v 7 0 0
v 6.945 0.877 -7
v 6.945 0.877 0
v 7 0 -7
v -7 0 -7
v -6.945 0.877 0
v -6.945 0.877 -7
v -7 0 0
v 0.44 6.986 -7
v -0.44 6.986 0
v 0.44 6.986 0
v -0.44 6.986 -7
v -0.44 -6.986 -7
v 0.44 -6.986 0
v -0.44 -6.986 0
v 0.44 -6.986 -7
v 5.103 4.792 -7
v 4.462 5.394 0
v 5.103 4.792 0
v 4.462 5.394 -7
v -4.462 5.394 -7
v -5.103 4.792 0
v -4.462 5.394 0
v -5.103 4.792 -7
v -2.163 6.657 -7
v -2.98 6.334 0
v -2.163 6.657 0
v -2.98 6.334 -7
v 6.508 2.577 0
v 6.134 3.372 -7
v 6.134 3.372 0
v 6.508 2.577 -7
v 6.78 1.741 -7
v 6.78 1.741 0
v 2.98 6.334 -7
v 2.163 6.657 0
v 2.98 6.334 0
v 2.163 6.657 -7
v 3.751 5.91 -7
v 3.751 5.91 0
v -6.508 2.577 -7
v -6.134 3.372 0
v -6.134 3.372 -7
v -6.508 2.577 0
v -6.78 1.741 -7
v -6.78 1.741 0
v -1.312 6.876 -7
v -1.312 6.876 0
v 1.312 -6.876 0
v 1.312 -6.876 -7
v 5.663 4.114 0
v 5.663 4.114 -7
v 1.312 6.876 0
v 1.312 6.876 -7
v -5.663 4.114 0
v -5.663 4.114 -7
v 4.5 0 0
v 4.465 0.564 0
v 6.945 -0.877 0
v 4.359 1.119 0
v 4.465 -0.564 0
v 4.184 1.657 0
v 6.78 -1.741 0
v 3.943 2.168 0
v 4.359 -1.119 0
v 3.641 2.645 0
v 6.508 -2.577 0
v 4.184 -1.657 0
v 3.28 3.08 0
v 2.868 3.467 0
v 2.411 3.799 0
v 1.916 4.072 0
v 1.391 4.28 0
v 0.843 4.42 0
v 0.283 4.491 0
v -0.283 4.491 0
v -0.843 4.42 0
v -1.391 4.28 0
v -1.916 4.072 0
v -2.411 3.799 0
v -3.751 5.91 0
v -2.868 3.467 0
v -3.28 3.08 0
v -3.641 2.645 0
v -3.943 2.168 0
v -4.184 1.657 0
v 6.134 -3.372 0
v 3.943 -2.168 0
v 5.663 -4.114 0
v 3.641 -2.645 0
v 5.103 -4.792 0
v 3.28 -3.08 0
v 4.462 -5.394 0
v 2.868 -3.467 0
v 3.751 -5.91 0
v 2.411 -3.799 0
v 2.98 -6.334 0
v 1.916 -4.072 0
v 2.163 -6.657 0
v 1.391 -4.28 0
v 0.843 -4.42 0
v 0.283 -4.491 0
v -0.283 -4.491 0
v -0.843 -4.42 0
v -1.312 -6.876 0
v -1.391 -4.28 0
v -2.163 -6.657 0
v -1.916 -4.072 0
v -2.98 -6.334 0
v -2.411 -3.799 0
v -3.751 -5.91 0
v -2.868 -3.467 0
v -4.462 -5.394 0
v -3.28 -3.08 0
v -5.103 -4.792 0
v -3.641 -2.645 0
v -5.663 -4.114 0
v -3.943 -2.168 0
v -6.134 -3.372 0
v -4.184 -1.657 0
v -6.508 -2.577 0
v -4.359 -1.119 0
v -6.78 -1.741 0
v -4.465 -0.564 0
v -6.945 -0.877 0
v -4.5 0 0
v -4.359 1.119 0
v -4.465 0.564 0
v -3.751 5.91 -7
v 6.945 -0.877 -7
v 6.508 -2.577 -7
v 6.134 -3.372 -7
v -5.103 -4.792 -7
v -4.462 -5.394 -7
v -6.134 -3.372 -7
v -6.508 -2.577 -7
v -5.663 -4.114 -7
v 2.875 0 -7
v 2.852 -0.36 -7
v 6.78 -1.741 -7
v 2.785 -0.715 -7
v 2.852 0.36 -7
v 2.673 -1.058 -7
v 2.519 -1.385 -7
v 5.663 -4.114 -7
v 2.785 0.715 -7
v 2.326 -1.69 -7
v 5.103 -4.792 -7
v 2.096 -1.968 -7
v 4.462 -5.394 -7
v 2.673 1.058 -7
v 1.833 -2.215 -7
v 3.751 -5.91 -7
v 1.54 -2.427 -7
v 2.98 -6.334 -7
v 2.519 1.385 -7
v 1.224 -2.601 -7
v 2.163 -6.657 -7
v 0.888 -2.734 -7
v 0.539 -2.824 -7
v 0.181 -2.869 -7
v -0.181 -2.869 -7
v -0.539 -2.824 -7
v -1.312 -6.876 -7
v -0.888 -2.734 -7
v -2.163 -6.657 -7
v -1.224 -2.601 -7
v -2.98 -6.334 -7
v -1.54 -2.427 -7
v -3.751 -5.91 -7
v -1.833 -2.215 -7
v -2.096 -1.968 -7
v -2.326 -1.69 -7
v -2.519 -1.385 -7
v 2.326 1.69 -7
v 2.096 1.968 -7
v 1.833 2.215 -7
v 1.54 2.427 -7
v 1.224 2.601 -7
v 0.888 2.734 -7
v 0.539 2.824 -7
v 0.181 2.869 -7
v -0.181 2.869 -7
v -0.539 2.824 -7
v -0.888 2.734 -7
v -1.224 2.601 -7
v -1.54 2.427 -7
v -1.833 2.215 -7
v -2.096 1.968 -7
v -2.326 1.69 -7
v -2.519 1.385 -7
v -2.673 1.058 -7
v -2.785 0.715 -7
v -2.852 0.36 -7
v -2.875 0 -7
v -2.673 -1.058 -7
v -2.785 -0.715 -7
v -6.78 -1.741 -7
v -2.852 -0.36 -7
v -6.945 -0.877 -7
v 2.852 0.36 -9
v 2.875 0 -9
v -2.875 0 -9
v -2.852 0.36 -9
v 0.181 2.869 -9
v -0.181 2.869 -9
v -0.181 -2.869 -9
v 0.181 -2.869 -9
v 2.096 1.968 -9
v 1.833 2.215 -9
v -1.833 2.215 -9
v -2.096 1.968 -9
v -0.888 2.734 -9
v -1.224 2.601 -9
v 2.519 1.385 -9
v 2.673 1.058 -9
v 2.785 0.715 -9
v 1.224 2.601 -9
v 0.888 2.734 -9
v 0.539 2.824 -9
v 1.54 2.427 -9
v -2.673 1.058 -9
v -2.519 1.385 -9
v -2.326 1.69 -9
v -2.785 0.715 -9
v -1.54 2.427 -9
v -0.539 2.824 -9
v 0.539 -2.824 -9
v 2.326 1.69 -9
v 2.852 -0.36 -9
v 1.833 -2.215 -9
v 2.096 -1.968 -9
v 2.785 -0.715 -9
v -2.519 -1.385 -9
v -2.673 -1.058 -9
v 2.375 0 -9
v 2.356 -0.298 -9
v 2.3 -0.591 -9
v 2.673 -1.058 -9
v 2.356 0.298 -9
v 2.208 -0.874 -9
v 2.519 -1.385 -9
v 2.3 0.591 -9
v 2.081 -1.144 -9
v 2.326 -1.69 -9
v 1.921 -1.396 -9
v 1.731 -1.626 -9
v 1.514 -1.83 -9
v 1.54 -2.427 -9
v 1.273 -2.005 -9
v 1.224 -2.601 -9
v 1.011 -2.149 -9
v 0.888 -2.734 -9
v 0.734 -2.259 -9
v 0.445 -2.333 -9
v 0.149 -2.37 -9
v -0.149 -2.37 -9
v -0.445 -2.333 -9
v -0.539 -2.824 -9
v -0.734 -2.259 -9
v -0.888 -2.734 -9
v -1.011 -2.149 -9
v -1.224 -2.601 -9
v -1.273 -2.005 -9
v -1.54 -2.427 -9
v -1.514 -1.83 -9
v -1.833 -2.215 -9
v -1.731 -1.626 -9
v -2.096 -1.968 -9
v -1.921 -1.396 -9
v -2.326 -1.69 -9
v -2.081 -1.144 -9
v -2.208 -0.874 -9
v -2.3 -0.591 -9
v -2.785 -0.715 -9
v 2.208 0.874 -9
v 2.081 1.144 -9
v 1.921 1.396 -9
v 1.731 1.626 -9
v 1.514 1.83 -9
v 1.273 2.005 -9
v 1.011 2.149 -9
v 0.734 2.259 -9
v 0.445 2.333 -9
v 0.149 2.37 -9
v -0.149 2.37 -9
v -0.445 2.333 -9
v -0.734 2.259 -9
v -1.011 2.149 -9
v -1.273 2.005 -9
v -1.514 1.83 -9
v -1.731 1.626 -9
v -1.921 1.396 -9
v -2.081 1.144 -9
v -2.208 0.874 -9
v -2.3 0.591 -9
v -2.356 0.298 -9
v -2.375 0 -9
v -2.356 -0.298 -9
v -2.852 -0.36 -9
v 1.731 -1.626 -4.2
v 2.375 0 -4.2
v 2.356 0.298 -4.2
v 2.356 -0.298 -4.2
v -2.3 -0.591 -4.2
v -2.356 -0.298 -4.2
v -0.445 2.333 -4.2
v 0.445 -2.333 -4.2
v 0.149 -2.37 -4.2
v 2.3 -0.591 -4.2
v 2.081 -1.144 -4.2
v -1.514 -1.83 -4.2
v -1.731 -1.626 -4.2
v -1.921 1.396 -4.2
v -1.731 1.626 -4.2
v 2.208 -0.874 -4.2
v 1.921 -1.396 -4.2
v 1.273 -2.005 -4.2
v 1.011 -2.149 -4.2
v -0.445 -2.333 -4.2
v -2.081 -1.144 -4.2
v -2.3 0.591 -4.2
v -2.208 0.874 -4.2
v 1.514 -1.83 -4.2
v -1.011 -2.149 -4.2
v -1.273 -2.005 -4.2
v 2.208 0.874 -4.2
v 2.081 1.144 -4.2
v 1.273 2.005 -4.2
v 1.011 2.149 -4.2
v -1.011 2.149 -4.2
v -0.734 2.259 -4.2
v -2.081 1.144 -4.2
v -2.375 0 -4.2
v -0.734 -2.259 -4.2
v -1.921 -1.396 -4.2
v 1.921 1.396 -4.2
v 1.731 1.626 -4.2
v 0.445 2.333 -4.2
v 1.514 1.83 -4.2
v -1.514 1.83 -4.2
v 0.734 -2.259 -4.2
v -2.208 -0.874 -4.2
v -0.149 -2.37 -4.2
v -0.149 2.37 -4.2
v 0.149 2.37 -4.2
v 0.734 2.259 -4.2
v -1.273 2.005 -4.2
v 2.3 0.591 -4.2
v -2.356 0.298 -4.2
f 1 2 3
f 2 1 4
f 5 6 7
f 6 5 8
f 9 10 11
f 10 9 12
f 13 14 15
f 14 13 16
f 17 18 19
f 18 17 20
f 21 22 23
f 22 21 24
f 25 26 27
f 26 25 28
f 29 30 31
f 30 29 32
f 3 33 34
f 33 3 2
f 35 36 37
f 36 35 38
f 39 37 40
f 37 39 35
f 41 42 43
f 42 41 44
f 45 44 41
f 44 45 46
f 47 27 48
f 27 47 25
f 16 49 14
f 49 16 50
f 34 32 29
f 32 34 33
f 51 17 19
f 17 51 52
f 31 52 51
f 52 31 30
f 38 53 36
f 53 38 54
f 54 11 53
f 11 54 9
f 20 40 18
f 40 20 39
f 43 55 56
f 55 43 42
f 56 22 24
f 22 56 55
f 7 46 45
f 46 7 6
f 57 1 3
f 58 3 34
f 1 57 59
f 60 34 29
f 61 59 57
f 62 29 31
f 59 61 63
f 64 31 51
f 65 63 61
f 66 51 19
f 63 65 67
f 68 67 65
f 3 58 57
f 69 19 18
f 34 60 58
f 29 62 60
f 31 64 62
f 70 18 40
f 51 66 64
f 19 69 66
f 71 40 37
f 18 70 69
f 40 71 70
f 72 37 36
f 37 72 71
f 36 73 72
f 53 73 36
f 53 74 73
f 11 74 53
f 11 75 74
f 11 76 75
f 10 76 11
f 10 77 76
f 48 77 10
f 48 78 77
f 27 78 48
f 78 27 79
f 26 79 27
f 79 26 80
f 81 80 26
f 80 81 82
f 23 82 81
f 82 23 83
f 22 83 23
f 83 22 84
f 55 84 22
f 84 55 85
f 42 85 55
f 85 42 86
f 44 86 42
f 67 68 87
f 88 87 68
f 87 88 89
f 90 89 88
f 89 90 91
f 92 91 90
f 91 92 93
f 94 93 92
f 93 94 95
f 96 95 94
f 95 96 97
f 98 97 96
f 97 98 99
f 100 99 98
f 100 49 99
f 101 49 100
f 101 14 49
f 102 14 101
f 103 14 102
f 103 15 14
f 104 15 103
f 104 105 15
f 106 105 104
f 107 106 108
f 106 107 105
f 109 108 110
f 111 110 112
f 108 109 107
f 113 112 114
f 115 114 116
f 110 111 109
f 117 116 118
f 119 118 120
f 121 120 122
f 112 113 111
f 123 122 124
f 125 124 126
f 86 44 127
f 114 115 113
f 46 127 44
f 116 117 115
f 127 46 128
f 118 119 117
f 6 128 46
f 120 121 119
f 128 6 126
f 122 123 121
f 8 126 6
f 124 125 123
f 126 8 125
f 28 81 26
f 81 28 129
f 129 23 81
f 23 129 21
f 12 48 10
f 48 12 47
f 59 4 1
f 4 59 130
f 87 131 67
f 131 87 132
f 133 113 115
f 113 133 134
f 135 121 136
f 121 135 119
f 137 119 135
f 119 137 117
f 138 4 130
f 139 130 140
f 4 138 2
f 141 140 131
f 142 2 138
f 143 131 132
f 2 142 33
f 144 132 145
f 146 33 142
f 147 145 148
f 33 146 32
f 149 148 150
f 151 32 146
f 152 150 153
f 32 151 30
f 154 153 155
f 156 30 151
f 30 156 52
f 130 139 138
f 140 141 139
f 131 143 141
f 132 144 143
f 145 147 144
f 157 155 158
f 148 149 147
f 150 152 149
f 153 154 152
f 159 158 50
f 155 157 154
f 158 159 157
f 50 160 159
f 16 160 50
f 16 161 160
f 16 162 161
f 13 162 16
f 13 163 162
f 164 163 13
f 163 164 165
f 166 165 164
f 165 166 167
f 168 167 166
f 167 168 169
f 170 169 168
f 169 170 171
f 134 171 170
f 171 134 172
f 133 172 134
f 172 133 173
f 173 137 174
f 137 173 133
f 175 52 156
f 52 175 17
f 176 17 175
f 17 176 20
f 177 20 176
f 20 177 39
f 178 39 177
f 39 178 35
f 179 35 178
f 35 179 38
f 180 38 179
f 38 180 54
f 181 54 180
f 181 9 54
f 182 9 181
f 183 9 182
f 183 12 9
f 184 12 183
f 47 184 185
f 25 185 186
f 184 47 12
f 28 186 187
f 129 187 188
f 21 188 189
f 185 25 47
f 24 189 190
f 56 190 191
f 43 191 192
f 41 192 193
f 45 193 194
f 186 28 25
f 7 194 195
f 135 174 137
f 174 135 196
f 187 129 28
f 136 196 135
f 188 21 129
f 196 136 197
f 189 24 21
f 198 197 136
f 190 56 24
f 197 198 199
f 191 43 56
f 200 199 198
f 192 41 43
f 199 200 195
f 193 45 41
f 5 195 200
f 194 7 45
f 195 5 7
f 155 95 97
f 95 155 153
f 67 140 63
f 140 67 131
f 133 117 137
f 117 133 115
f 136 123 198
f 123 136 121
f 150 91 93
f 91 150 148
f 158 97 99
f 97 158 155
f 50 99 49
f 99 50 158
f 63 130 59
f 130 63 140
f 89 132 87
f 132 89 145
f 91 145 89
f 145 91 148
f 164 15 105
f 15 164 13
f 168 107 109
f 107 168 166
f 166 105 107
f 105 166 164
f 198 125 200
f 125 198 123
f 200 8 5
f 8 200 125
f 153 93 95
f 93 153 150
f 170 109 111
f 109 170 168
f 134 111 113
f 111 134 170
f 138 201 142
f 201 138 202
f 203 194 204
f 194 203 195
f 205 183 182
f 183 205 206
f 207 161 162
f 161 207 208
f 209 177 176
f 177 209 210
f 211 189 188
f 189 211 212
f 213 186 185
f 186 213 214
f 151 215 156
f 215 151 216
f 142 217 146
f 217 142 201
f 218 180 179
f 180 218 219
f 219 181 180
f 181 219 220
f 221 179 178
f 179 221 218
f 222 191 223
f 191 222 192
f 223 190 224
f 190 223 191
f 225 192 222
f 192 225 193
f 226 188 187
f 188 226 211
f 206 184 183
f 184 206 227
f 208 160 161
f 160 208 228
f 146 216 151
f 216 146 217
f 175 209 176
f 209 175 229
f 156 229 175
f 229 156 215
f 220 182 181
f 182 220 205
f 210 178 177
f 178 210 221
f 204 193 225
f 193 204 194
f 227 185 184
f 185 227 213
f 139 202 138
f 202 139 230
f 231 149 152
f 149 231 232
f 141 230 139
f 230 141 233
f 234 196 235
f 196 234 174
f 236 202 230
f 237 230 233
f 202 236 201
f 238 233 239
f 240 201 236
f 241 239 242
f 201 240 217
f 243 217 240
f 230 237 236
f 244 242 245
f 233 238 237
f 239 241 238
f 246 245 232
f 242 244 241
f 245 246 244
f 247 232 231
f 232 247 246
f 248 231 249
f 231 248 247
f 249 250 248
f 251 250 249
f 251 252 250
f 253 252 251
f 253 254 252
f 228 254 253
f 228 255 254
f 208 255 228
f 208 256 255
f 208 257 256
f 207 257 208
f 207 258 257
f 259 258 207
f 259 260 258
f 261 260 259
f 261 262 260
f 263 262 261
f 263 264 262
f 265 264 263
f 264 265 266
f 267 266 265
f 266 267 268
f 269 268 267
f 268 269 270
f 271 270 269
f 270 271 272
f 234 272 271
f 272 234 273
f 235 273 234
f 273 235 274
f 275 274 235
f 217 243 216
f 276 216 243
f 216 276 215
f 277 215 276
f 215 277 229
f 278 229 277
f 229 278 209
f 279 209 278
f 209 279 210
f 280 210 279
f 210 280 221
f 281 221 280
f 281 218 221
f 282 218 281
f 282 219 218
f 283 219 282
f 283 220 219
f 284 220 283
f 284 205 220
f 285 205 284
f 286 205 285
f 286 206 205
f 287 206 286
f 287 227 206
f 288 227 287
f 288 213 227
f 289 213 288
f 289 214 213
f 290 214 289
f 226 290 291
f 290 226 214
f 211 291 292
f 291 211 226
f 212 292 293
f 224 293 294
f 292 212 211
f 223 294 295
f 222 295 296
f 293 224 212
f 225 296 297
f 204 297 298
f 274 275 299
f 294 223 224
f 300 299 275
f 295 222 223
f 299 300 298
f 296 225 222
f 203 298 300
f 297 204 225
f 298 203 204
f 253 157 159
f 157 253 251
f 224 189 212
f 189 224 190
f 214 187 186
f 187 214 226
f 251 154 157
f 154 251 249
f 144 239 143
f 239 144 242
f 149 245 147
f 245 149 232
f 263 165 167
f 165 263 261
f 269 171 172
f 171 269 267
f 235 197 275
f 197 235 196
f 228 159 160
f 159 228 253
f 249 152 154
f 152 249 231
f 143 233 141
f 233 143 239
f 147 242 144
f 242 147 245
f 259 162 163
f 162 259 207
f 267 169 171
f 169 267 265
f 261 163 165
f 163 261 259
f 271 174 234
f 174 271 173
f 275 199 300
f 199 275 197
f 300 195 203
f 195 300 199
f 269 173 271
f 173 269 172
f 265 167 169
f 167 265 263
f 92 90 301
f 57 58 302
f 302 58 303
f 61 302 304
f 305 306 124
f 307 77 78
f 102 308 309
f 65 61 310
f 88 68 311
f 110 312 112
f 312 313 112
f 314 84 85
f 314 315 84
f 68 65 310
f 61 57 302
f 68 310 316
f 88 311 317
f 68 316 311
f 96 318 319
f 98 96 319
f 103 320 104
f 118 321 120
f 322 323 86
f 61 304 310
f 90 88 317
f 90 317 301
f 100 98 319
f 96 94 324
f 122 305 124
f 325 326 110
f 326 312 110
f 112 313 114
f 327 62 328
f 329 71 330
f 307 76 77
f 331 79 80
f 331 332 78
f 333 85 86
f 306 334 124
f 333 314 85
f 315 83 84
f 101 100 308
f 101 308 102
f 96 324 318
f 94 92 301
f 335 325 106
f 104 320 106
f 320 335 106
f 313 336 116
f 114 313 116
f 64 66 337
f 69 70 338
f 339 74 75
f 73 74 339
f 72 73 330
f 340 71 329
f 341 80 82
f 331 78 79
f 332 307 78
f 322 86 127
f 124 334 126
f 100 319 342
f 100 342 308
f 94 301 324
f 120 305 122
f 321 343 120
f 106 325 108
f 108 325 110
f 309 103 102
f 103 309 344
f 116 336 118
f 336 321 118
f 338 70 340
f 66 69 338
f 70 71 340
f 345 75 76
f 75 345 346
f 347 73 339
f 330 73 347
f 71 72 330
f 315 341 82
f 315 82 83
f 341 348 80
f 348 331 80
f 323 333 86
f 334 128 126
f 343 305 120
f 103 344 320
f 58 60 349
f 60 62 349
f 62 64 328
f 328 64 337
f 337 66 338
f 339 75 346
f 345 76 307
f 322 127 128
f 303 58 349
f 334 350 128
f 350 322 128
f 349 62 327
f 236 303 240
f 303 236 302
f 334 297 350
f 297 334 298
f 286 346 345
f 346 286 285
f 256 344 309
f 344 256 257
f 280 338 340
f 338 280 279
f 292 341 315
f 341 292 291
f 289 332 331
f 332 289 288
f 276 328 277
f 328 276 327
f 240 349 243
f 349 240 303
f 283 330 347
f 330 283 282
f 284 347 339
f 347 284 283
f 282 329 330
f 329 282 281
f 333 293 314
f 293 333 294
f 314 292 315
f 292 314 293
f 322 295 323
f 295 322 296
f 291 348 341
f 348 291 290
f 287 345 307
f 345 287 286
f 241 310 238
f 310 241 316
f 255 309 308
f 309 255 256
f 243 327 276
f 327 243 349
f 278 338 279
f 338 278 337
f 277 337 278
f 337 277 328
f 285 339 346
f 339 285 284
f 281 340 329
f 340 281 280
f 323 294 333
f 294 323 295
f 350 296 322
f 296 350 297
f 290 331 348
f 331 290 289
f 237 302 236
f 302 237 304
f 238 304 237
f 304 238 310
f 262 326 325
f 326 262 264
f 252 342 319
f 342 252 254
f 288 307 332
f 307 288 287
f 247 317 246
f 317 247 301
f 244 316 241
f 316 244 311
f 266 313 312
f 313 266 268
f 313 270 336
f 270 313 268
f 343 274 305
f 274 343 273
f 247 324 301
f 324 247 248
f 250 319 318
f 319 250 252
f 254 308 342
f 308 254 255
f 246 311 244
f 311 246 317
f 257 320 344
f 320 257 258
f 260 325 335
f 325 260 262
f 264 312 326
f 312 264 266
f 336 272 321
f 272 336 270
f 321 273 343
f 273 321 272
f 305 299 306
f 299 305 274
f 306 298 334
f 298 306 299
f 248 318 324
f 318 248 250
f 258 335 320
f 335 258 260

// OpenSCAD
$fn = 50;


difference() {
	union() {
		translate(v = [0, 0, -7.0000000000]) {
			cylinder(h = 7, r = 7.0000000000);
		}
		translate(v = [0, 0, -9.0000000000]) {
			cylinder(h = 9, r = 2.8750000000);
		}
	}
	union() {
		translate(v = [0, 0, 0]) {
			rotate(a = [0, 0, 0]) {
				difference() {
					union() {
						translate(v = [0, 0, -9.0000000000]) {
							cylinder(h = 9, r = 2.2500000000);
						}
						translate(v = [0, 0, -4.2000000000]) {
							cylinder(h = 4.2000000000, r1 = 2.3750000000, r2 = 4.5000000000);
						}
						translate(v = [0, 0, -9.0000000000]) {
							cylinder(h = 9, r = 2.3750000000);
						}
						translate(v = [0, 0, -9.0000000000]) {
							cylinder(h = 9, r = 2.2500000000);
						}
					}
					union();
				}
			}
		}
	}
}
